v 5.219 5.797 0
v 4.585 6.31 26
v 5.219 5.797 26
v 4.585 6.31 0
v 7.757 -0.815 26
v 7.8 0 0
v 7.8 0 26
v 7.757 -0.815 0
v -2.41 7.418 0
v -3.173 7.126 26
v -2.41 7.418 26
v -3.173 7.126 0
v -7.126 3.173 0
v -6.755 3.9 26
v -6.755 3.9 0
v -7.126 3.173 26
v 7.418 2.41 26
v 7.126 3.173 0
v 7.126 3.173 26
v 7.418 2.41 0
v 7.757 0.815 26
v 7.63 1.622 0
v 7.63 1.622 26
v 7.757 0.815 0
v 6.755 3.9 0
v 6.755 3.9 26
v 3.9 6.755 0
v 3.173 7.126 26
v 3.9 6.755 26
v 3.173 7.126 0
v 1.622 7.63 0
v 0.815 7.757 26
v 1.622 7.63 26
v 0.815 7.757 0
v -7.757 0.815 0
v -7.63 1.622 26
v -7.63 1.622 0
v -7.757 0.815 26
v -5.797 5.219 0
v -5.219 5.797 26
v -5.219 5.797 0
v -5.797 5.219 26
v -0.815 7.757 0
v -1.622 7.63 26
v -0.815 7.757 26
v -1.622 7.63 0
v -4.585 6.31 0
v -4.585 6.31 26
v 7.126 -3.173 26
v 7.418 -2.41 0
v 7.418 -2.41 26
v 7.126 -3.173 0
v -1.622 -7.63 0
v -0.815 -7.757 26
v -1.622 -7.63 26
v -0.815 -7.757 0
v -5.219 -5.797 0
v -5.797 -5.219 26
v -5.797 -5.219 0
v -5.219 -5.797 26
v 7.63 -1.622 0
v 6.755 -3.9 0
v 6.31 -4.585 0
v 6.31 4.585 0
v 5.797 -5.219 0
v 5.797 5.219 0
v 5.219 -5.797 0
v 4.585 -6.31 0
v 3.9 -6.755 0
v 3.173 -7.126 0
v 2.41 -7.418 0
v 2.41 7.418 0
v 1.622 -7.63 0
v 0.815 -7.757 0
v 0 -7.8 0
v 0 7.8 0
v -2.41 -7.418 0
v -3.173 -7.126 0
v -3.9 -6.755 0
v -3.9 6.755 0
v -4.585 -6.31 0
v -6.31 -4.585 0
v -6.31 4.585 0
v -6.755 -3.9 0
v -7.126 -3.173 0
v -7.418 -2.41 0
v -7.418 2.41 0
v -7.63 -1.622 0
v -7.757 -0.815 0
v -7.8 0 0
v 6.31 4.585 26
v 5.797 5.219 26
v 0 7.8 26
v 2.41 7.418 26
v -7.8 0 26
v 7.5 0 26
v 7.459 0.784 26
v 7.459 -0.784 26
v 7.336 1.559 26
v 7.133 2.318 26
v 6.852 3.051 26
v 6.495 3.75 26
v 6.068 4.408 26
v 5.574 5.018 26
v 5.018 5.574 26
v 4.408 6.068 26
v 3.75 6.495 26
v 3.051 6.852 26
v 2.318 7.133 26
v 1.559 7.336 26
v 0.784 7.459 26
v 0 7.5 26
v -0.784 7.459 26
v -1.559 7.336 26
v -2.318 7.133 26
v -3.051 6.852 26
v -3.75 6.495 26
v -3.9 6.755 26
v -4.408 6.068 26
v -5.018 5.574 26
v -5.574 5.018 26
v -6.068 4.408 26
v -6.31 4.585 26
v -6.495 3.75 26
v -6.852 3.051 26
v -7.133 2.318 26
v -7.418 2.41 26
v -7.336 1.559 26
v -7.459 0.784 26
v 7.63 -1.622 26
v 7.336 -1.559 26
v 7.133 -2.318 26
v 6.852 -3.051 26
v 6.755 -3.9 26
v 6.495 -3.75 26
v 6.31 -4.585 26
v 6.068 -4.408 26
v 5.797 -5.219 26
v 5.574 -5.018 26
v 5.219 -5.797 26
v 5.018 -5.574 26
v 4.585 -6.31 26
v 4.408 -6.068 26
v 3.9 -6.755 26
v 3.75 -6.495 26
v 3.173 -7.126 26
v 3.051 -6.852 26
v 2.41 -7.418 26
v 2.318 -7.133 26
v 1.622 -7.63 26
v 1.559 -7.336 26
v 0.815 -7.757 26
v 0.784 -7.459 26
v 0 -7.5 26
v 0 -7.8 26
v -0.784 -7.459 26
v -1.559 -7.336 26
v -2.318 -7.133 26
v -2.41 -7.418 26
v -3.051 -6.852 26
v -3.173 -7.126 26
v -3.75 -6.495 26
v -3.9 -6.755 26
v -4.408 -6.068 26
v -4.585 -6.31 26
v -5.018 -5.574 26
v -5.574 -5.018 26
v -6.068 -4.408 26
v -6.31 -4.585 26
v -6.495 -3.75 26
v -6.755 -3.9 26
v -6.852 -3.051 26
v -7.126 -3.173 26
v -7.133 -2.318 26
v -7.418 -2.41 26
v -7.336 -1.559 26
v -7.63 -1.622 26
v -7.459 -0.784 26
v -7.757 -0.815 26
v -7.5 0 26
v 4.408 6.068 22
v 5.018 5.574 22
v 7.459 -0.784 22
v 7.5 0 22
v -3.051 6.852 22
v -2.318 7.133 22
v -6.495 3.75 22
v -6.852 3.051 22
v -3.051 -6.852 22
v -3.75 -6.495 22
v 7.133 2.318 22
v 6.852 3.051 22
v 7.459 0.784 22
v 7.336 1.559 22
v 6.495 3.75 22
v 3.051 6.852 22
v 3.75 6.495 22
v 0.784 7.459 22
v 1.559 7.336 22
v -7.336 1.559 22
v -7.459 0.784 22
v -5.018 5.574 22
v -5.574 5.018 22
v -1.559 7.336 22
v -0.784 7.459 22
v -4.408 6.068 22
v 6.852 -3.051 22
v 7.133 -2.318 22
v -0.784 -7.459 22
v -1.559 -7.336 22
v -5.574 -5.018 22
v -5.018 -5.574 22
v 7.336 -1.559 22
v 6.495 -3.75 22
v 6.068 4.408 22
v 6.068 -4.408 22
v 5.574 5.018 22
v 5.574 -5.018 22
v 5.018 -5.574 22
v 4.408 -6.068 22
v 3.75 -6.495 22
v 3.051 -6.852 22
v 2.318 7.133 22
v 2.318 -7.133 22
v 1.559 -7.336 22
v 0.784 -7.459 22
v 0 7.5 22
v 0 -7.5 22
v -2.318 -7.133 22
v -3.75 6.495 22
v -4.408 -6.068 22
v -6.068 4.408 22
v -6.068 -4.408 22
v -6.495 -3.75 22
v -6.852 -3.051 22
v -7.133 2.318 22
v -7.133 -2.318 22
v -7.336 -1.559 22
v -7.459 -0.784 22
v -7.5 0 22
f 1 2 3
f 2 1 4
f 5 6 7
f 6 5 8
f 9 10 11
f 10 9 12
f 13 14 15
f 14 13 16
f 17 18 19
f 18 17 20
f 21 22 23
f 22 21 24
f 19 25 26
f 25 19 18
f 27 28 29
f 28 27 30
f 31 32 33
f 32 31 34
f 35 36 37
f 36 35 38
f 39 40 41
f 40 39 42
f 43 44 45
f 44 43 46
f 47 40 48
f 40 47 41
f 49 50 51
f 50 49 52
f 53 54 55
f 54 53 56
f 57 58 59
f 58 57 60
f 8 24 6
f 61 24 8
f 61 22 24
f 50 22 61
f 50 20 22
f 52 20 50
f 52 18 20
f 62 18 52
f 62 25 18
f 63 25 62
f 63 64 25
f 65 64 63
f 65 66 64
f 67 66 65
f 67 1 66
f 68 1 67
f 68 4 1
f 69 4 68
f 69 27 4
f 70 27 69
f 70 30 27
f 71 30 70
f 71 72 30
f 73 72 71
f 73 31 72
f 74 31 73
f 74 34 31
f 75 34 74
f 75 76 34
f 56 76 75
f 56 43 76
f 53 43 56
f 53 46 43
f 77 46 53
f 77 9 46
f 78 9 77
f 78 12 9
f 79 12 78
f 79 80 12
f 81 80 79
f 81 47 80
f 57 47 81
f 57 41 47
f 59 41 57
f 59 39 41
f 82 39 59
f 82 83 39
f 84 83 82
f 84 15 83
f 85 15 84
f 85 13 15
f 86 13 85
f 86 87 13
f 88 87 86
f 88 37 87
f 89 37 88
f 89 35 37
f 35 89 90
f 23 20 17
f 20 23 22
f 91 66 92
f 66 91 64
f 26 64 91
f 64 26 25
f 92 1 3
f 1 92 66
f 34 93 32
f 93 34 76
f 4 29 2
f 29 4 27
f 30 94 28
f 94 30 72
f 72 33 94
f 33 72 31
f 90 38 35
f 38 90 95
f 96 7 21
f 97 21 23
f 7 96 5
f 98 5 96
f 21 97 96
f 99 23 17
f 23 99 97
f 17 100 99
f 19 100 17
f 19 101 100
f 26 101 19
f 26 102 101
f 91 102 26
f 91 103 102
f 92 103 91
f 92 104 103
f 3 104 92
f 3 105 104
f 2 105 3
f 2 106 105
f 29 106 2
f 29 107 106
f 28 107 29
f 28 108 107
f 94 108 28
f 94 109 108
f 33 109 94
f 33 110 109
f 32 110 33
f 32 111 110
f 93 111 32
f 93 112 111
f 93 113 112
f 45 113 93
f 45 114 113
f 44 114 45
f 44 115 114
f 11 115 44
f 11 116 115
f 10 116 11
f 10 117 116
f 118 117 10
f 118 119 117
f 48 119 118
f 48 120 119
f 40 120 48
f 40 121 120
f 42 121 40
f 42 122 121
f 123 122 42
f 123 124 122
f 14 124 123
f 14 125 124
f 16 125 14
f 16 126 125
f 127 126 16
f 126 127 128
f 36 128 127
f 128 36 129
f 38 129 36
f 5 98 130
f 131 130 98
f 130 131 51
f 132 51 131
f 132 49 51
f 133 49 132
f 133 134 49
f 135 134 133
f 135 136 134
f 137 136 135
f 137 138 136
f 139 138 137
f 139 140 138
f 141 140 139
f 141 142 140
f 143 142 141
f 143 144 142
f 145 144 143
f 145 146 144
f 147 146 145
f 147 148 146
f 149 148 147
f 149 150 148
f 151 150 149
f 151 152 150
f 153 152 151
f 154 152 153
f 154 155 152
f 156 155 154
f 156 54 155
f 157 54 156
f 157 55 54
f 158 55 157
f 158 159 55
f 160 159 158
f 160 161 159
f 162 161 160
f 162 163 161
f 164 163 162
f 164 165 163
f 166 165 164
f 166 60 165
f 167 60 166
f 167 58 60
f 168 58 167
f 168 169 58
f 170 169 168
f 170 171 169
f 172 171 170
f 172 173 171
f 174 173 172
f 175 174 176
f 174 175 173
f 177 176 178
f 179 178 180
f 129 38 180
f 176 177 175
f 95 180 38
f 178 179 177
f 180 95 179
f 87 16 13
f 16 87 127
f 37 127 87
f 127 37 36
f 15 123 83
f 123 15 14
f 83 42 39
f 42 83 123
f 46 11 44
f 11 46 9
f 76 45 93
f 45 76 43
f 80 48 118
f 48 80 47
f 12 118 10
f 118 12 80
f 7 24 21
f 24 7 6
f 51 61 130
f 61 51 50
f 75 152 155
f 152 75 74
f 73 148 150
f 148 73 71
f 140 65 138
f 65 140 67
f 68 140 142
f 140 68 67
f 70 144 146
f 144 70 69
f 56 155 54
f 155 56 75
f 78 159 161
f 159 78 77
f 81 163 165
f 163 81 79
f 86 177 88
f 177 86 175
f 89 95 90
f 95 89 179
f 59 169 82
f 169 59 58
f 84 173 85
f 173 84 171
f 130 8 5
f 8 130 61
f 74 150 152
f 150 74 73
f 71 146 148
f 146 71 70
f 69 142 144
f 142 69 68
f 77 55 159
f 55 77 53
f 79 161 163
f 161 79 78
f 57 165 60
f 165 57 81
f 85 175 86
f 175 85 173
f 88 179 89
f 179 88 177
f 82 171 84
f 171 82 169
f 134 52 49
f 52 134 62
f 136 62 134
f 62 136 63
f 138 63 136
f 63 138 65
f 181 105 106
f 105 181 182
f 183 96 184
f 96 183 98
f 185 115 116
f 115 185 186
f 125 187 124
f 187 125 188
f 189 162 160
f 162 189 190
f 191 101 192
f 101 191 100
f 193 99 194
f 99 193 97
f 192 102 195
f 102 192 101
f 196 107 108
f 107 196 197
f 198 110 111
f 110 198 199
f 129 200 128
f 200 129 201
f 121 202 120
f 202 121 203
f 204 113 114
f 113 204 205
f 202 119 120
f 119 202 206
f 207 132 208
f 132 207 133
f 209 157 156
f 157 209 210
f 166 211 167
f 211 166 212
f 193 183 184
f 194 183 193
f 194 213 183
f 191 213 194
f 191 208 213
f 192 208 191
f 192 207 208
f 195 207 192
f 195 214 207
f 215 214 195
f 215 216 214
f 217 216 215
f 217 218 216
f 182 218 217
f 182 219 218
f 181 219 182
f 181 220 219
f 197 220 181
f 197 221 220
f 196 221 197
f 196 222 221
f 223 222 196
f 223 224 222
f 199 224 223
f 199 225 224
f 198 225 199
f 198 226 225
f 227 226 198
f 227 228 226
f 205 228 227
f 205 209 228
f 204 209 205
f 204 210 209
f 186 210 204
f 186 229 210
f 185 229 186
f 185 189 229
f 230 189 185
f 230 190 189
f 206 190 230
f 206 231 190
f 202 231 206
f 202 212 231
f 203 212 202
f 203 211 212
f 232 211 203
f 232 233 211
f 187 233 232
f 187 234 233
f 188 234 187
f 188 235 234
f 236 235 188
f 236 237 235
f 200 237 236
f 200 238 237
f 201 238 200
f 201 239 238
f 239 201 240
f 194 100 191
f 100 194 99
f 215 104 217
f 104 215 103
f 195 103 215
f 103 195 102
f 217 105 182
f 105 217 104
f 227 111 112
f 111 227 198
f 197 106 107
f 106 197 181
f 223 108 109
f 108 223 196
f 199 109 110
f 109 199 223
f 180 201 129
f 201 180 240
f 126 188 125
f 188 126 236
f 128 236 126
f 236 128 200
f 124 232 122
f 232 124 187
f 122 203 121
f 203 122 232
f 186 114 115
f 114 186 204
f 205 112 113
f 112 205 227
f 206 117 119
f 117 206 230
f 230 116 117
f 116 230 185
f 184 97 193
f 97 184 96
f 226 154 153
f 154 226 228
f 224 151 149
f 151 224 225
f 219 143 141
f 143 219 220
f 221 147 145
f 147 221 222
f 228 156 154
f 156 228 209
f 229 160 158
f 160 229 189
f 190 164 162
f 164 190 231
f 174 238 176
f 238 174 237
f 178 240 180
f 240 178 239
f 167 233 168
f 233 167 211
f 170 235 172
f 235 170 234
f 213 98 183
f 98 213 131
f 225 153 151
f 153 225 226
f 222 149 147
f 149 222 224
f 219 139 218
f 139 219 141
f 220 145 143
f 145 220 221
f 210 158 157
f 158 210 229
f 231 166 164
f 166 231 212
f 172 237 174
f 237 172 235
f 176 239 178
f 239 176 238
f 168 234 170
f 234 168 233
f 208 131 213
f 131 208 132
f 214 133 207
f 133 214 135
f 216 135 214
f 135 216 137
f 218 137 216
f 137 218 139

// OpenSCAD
$fa=6;
$fs=0.3/2;
d1 = 15.6;
hboost=22;
d2=15;
h2=4;
tolerence=0.1;

difference() {
        cylinder(r = d1/2, h = hboost+h2, center = false);
translate([0,0,hboost]) {
        cylinder(r = d2/2, h = h2+tolerence, center = false);
    }
}
